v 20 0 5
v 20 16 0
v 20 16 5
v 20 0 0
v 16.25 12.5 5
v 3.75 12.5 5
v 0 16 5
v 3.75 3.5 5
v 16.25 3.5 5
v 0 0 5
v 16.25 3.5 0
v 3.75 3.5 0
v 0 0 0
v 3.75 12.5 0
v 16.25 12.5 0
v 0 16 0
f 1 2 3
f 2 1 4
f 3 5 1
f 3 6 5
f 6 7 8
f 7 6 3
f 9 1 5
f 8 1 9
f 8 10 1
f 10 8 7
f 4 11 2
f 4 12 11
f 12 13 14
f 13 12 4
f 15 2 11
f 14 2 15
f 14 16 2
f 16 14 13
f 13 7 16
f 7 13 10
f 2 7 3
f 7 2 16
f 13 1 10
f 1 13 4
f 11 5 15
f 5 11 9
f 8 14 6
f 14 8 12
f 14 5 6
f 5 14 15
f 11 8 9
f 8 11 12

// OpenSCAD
difference()
{
  cube([20.0, 16.0, 5]);
  
  translate([7.5/2, 7.0/2, 0 ])
  {
    cube([12.5, 9.0, 5]);
  }
}
